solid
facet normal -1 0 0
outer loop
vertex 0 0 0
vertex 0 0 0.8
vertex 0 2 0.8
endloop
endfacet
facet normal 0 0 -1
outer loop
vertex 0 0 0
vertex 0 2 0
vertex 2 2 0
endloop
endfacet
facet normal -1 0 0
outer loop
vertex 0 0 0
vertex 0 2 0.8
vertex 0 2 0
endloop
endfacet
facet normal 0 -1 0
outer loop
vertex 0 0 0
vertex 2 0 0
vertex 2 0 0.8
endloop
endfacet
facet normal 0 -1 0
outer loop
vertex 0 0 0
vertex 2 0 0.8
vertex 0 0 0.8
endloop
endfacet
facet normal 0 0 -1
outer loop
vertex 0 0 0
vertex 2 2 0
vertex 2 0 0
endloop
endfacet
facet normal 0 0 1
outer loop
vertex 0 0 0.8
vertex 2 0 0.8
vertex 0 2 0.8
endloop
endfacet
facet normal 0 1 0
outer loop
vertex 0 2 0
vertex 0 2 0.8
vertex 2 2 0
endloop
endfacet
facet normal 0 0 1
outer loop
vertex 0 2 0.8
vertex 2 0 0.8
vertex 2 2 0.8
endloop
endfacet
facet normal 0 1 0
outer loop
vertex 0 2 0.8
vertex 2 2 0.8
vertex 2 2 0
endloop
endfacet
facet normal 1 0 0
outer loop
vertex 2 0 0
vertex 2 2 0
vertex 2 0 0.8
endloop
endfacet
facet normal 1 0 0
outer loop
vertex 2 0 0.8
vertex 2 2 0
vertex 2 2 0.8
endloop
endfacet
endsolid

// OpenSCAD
/* Warning, this is a very basic generator with a lot of approximation 
input data : [WDFN, RWX, 2x2x0.8mm, 8, , C, C04-00261C]
generated by com.zoubworld.electronics.cad.model3d.Basic
Date : Sun Feb 15 10:50:48 CET 2026
*/

//body
color("black")
translate([0,0,0])
cube([2.0,2.0,0.8], center=false);
